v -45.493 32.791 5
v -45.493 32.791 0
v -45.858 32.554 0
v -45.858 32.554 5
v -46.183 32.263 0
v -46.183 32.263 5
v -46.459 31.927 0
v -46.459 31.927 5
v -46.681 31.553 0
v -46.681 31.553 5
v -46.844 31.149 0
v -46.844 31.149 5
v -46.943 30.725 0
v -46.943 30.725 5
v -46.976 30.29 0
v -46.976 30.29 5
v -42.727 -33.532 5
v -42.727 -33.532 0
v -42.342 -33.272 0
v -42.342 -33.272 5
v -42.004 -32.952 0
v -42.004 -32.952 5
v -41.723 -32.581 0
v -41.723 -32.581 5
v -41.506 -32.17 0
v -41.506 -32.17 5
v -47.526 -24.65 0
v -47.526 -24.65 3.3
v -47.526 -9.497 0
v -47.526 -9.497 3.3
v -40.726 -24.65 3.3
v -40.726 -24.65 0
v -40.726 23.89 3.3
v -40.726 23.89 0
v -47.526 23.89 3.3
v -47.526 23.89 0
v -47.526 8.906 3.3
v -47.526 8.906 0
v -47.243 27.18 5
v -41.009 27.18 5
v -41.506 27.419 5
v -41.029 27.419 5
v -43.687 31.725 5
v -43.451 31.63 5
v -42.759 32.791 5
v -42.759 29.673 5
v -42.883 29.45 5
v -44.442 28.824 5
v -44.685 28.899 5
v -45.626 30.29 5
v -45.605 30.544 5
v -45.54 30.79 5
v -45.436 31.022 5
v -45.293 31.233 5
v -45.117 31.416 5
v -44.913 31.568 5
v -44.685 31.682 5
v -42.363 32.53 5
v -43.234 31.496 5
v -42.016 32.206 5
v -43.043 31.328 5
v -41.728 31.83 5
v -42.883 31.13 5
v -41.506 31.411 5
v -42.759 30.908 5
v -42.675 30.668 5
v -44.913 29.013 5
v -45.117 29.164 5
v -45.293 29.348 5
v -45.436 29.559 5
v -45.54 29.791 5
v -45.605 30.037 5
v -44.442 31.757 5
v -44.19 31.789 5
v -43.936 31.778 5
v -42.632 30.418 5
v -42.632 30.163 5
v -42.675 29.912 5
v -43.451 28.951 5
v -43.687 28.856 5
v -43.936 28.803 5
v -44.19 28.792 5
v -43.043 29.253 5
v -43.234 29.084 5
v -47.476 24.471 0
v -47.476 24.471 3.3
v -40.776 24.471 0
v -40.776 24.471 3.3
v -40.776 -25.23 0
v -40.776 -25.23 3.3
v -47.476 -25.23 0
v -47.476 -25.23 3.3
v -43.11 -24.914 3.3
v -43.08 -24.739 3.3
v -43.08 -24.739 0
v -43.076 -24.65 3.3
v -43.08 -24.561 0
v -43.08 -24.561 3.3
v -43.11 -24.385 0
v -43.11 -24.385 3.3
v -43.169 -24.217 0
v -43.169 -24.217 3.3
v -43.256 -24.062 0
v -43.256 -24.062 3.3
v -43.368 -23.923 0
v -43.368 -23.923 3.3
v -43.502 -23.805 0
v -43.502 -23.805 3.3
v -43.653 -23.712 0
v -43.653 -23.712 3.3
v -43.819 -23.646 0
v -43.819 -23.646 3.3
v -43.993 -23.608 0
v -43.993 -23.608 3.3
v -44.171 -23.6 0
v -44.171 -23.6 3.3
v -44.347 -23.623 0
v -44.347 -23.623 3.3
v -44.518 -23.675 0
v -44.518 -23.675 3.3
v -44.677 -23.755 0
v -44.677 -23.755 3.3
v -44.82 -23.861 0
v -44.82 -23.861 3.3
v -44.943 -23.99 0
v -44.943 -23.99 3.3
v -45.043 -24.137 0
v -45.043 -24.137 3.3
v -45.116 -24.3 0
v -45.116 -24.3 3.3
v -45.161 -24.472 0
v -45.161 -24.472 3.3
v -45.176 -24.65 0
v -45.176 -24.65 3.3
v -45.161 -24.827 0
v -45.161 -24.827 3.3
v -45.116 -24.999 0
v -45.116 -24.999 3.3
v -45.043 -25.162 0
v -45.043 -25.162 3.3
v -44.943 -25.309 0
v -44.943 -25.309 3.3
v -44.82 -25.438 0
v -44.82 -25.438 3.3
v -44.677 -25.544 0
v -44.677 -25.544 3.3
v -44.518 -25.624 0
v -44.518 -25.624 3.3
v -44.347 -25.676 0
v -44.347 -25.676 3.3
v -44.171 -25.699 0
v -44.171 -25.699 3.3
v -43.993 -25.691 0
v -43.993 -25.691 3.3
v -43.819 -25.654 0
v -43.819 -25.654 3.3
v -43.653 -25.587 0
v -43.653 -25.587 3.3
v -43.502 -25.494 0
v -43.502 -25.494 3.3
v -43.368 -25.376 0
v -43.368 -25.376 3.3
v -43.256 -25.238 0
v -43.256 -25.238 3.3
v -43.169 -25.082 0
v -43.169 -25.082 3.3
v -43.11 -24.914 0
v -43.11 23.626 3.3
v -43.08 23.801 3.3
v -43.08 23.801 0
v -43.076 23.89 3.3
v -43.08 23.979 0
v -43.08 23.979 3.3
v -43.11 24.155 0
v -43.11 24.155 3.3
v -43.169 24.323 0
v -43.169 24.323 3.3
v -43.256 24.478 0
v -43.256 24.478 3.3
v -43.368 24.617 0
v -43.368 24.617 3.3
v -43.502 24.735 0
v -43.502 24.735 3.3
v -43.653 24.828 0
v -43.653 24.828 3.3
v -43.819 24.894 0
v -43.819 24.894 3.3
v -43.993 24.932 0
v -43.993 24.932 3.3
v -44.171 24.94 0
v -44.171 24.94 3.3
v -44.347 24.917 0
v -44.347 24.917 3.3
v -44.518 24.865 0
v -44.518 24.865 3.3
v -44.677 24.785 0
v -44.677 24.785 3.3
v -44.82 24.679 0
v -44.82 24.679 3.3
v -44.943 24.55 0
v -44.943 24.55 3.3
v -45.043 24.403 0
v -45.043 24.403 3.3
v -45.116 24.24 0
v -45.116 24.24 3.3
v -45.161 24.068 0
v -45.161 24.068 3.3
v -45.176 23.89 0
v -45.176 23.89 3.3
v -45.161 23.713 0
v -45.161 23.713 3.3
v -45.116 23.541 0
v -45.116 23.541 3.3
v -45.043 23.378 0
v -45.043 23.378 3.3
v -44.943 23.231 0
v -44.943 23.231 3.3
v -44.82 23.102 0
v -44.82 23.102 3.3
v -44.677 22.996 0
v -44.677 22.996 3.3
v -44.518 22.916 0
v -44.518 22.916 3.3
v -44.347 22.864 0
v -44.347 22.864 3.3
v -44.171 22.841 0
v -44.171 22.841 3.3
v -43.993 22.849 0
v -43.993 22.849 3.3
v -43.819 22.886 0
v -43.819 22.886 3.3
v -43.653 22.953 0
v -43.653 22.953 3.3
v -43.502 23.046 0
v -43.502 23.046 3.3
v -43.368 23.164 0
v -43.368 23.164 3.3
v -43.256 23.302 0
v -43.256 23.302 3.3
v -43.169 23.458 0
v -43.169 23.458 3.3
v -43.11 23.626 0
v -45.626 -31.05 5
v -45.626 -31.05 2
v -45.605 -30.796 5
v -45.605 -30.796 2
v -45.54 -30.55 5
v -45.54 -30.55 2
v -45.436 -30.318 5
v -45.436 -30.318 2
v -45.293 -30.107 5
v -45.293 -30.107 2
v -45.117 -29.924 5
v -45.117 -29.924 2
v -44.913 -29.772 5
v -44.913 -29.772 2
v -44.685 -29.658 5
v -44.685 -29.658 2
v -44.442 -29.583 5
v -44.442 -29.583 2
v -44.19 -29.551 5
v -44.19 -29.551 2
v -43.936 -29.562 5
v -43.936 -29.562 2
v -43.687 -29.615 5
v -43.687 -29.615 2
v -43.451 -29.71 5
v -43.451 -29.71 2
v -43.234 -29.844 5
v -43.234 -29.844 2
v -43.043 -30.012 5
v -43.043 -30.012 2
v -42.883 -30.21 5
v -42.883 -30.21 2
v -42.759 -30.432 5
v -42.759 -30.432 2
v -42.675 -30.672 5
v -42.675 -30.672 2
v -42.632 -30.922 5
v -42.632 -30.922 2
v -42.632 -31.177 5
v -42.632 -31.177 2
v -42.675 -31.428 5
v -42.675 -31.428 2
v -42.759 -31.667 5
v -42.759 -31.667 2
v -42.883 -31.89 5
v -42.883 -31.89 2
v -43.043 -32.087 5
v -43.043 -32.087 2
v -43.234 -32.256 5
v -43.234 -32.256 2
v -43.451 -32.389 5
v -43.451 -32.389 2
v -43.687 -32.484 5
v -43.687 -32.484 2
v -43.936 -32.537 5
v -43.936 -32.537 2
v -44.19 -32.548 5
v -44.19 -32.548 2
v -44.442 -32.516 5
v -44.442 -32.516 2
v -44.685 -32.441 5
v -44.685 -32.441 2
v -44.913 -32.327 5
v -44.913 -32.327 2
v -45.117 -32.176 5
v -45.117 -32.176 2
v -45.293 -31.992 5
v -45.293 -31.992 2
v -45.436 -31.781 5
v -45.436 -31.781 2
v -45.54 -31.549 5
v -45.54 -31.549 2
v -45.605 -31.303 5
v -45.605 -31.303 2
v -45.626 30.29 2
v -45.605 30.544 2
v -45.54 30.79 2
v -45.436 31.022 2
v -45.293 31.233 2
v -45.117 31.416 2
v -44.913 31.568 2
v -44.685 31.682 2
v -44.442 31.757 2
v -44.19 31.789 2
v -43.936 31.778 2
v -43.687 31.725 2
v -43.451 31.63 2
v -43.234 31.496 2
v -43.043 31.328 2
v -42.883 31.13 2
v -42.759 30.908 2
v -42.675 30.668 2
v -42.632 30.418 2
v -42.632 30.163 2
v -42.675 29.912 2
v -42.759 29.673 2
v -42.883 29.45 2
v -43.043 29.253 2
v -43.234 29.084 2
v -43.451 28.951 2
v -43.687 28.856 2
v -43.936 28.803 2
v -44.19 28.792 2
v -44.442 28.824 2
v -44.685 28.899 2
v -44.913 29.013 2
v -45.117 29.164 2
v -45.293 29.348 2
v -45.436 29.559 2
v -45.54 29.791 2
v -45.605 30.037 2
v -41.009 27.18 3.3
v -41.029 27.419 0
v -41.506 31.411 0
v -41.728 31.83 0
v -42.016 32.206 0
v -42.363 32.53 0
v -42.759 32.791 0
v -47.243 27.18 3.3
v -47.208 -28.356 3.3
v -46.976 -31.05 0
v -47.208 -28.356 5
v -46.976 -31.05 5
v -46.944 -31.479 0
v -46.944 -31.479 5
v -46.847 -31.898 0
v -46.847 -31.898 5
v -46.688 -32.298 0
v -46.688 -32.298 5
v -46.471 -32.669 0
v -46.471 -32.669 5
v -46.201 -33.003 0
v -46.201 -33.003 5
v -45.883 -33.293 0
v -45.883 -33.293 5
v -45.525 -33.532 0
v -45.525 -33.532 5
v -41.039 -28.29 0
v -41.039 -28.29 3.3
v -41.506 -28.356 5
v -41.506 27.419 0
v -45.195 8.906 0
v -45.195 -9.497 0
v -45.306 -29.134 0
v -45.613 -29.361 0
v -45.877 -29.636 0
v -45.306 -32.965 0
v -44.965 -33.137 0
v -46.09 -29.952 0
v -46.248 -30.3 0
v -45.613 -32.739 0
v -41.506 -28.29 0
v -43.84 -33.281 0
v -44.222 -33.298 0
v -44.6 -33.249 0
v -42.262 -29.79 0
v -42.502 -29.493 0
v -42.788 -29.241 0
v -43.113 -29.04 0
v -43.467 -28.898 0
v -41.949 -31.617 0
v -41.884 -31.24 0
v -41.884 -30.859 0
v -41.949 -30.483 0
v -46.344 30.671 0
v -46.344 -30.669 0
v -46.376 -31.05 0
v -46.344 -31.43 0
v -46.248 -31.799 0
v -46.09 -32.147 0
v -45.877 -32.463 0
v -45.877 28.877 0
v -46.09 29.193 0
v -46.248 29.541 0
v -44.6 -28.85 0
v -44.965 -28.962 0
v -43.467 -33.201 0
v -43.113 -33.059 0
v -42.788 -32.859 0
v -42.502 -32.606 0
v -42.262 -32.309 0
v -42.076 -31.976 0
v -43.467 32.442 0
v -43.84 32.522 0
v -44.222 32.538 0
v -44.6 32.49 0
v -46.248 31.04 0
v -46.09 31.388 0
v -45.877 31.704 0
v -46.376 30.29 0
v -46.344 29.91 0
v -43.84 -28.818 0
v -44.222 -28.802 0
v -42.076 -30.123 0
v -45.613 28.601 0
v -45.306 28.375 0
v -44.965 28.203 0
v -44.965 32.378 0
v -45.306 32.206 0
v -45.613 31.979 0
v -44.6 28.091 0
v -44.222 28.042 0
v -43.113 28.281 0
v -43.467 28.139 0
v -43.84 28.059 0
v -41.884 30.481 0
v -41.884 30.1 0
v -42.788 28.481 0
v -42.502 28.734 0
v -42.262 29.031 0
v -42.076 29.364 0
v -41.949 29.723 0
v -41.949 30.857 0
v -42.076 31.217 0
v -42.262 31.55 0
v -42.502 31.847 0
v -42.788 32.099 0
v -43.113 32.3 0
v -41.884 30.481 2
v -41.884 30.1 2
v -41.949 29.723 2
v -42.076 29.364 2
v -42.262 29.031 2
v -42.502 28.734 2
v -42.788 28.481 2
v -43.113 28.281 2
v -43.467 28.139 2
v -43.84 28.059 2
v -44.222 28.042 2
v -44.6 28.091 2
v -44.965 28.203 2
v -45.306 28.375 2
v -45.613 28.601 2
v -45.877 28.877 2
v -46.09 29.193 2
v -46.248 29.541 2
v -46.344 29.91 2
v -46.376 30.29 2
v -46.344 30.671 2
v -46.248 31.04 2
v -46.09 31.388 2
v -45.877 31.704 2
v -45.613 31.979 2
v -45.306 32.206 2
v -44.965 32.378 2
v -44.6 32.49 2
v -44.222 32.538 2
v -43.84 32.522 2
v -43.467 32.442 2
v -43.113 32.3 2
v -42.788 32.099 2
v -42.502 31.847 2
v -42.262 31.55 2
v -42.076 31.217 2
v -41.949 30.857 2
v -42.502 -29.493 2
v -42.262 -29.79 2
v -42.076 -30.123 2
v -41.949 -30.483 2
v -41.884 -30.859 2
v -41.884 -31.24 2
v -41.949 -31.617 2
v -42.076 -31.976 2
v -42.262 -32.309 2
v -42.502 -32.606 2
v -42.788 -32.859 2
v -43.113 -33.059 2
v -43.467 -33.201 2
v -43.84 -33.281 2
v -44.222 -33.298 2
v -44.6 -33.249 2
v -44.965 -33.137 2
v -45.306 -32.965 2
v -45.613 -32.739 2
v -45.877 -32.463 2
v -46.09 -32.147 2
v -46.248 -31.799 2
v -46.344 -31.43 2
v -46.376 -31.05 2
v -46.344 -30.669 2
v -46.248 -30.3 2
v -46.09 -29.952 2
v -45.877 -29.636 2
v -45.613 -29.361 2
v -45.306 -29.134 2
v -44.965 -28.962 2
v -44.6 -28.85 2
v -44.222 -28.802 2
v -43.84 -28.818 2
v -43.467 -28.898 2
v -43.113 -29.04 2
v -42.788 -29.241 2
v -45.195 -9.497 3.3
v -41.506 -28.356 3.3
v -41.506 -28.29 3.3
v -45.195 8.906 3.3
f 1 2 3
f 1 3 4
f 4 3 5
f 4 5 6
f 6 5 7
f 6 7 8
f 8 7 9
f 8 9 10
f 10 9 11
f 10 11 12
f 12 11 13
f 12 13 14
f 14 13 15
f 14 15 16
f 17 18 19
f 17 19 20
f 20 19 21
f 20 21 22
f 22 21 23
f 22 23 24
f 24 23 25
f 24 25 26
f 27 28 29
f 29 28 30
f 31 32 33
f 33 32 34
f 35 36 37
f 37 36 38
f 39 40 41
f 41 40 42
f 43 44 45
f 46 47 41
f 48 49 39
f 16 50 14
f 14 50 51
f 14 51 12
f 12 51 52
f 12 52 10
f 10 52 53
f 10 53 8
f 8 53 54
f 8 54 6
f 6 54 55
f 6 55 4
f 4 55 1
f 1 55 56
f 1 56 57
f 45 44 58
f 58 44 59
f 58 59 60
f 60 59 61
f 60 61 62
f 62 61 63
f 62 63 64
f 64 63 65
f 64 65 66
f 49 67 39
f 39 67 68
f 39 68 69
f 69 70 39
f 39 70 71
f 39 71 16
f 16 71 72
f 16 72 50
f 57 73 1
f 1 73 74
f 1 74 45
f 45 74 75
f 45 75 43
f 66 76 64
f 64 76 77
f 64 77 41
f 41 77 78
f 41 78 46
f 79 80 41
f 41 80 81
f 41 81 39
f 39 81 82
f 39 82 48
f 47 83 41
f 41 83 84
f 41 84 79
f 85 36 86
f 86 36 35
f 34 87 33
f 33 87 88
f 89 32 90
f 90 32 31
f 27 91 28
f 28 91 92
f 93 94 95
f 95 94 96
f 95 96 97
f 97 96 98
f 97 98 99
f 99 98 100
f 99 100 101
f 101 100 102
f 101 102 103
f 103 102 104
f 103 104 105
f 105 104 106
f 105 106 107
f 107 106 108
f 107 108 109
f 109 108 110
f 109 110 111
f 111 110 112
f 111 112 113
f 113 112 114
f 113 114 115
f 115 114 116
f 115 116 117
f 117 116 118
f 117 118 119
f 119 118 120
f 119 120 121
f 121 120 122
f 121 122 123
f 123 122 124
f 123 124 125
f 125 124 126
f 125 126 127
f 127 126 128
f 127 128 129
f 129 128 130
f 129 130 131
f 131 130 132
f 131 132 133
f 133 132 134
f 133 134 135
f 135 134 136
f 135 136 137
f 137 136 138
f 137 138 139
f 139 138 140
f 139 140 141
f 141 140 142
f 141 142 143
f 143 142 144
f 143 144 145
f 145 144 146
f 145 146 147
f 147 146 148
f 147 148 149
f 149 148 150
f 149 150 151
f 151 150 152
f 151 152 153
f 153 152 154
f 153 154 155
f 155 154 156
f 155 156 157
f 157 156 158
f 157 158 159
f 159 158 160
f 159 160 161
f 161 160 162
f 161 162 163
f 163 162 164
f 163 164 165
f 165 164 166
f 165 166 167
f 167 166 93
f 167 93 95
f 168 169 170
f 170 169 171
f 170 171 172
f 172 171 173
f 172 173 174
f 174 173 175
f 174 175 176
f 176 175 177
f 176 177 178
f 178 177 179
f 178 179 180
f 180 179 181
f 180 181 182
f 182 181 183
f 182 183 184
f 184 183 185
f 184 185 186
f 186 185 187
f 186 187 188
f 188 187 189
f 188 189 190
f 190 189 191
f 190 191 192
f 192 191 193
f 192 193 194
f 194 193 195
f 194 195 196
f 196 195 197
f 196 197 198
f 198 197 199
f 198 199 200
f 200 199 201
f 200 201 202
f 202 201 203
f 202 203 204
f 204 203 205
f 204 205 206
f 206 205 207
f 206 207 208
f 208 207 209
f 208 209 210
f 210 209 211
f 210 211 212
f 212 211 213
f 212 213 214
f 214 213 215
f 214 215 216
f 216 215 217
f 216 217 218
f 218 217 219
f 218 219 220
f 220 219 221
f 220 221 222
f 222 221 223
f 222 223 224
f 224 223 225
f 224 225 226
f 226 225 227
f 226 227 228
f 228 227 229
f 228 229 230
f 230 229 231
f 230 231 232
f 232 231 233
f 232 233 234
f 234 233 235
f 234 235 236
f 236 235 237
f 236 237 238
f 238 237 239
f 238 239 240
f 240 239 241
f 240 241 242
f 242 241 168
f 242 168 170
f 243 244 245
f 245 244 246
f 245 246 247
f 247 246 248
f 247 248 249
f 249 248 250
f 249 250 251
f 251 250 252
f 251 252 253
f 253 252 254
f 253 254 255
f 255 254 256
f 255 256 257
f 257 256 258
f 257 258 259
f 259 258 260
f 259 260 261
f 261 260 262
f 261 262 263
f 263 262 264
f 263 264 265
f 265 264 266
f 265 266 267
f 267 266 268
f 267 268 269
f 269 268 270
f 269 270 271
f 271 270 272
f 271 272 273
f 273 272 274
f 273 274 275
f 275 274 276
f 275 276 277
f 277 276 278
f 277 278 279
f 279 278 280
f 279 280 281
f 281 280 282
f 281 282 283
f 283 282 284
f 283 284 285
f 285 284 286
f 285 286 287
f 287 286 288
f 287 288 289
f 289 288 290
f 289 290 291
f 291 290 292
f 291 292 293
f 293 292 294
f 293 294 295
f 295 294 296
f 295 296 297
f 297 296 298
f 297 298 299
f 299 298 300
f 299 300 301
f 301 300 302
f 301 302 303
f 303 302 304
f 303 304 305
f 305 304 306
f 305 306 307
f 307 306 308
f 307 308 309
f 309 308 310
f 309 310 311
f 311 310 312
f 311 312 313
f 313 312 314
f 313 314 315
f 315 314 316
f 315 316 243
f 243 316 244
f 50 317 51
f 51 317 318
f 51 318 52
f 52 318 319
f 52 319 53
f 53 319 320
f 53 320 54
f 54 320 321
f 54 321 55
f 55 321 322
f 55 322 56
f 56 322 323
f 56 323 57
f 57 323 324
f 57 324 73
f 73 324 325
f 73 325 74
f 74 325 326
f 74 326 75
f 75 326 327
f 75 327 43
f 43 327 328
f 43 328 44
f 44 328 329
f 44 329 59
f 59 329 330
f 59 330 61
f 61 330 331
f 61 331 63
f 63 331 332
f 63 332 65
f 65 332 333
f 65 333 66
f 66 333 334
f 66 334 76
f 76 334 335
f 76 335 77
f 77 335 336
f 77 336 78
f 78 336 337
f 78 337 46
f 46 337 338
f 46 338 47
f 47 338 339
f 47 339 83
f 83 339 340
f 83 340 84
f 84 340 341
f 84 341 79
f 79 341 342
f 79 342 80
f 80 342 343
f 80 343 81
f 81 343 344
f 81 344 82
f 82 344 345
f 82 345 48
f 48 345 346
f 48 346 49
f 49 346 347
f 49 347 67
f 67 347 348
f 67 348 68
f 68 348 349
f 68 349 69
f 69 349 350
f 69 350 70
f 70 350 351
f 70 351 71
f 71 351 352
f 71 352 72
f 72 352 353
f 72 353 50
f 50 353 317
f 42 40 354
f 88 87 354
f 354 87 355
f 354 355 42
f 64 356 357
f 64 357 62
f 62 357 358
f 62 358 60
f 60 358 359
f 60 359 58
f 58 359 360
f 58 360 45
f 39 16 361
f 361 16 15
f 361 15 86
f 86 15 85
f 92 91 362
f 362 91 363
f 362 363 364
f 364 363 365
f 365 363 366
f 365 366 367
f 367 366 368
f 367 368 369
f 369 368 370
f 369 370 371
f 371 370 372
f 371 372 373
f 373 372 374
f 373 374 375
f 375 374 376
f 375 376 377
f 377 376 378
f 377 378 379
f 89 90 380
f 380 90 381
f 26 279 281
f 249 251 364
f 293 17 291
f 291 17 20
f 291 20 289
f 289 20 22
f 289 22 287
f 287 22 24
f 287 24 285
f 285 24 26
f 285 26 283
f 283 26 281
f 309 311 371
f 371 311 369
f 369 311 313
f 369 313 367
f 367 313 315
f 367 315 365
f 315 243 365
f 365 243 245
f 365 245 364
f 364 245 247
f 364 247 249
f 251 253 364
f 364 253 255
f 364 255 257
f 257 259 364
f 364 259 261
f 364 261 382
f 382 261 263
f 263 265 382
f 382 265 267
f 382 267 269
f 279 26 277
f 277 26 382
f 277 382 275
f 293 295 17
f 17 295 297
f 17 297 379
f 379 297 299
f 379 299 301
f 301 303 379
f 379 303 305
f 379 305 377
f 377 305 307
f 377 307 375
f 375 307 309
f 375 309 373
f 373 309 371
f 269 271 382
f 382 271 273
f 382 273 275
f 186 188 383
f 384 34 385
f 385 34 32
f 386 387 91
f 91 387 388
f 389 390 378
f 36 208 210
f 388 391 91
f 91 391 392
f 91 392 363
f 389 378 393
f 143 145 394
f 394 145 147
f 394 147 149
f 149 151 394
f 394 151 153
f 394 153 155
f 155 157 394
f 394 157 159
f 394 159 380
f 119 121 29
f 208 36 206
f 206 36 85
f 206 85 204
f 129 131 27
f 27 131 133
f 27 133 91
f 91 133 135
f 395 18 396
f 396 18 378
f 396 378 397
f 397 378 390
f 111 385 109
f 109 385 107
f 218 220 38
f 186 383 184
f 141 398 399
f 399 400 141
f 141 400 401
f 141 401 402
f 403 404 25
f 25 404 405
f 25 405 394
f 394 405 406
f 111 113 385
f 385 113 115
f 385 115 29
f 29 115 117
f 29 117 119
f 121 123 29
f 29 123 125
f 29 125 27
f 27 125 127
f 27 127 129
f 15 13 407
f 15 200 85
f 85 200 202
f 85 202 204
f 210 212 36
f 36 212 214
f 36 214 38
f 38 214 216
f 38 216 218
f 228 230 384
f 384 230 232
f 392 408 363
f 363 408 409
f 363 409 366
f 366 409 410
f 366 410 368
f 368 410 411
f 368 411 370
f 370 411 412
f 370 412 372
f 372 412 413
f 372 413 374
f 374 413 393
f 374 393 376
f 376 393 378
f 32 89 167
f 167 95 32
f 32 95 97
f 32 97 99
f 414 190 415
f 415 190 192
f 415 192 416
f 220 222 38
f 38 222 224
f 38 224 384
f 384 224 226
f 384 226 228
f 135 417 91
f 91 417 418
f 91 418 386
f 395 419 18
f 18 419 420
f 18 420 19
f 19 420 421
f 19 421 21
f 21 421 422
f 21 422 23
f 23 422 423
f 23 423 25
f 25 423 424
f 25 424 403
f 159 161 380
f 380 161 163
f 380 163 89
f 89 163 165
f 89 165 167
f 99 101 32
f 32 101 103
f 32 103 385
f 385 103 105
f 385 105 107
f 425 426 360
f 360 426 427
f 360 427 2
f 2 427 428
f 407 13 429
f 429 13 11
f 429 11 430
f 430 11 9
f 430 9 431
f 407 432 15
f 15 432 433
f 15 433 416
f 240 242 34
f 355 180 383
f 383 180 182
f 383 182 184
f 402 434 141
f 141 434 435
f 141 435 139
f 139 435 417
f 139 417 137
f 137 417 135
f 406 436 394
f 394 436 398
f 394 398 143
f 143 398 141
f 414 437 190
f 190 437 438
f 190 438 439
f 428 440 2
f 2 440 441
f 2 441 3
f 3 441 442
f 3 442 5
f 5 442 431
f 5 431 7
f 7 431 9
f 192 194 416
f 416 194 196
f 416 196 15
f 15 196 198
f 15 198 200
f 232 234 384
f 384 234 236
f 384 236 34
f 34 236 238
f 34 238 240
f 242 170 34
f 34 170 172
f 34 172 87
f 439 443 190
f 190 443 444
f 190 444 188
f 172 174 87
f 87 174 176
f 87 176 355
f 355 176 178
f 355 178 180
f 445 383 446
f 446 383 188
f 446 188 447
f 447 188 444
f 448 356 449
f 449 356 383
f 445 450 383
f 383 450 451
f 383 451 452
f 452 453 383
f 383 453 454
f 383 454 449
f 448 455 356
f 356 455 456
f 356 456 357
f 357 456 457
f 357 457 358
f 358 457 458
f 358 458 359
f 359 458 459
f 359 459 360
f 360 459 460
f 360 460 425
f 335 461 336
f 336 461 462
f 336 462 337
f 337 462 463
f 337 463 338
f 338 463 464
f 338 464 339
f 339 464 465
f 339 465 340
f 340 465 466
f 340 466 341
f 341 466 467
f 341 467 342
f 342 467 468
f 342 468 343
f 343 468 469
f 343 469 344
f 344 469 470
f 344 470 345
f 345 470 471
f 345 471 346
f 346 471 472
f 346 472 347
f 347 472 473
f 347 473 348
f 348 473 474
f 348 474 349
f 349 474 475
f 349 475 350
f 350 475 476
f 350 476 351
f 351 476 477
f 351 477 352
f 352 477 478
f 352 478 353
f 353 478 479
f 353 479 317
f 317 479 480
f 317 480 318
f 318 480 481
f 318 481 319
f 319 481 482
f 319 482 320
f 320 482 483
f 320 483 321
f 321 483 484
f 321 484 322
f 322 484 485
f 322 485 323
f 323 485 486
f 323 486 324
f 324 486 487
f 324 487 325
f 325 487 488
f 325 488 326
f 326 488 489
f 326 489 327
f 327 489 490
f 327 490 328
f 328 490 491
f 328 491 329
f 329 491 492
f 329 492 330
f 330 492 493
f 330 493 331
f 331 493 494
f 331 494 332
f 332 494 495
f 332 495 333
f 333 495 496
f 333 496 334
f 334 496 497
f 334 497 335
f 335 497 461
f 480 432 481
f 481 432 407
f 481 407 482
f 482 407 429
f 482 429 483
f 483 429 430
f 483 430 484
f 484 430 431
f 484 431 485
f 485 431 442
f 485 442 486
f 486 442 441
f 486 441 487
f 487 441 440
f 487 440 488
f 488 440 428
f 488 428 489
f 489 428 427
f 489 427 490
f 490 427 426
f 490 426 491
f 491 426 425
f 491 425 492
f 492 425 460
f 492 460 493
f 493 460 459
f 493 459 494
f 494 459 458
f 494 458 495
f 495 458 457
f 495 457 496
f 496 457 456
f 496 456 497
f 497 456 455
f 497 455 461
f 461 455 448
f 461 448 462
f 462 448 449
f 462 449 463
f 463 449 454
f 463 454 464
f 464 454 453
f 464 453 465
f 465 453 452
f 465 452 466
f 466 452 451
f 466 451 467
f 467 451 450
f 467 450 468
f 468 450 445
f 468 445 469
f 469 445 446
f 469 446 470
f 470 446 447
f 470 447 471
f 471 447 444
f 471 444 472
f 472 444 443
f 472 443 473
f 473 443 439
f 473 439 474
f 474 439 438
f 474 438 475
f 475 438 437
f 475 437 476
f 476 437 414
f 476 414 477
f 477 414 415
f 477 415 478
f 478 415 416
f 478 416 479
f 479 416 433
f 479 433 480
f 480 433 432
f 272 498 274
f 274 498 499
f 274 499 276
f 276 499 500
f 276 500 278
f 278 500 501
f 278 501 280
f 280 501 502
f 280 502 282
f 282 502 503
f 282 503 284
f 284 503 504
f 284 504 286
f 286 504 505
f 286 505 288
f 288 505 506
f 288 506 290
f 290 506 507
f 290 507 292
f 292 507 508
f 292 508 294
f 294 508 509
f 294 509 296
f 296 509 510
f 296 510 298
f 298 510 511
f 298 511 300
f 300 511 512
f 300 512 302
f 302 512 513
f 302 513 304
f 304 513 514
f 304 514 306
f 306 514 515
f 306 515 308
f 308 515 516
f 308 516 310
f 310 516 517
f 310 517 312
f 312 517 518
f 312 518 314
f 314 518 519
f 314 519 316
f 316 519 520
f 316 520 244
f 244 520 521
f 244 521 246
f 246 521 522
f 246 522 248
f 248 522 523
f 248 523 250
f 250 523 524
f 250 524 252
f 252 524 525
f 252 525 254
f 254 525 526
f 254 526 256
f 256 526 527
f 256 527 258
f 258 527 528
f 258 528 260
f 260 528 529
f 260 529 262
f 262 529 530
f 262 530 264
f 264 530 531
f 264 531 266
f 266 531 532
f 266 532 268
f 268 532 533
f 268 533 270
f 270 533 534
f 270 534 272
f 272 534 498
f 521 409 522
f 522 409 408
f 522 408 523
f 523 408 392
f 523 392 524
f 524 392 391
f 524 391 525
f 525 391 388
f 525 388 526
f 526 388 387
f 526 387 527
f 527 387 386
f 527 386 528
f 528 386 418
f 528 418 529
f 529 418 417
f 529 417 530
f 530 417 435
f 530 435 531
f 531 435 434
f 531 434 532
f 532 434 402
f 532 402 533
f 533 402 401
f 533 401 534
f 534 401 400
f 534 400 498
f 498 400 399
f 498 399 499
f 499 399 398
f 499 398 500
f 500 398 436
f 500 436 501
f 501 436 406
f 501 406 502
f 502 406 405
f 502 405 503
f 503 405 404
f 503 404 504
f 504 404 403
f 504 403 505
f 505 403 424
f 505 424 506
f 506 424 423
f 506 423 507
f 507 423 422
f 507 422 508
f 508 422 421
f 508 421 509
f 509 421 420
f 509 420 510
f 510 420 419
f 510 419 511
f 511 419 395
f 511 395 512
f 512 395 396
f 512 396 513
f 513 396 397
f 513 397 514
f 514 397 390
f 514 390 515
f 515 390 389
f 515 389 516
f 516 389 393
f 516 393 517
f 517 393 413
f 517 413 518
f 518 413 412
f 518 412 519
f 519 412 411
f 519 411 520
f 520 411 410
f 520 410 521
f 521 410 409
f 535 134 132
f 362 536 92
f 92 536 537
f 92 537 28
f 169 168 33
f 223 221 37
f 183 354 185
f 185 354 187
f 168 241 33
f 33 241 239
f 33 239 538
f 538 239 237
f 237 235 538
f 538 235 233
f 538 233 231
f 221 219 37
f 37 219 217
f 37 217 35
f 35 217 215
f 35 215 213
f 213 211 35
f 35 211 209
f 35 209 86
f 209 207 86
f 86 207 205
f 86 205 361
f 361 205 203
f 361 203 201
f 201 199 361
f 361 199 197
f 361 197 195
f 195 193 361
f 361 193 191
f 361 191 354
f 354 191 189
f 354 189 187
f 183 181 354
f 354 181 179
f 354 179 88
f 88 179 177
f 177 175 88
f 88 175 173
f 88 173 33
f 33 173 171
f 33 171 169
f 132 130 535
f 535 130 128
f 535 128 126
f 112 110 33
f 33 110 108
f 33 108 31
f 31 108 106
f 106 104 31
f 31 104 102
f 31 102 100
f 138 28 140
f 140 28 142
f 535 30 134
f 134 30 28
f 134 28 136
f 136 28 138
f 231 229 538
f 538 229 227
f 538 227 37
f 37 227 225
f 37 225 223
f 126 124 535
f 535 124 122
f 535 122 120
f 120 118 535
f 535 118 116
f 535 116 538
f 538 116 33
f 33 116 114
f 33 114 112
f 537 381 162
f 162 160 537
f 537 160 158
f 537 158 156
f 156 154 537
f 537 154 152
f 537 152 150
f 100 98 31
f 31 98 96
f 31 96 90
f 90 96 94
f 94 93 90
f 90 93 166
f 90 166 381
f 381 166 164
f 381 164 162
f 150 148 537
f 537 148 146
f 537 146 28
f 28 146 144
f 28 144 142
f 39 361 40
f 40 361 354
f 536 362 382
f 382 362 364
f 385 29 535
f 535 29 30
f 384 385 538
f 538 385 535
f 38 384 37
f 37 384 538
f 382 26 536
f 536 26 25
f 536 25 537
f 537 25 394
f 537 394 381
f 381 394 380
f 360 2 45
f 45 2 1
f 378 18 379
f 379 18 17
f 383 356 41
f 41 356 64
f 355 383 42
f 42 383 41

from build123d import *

# Parameters (mm, degrees)
SKIZZE5_R                       = 2.85
AUFSATZ_LINEAR_AUSTRAGEN2_DEPTH = 5
SKIZZE7_R                       = 1.5
SKIZZE7_R_2                     = 2.5
SCHNITT_LINEAR_AUSTRAGEN1_DEPTH = 5
SKIZZE10_R                      = 3.4
AUFSATZ_LINEAR_AUSTRAGEN4_DEPTH = 5
SKIZZE11_R                      = 1.05
SCHNITT_LINEAR_AUSTRAGEN3_DEPTH = 5
SKIZZE15_R                      = 2.25
SCHNITT_LINEAR_AUSTRAGEN7_DEPTH = 2
SKIZZE16_W                      = 8.368883353
SKIZZE16_H                      = 55.536319394
SCHNITT_LINEAR_AUSTRAGEN8_DEPTH = 1.7
SKIZZE17_W                      = 2.331134025
SKIZZE17_H                      = 18.40252581
SKIZZE17_W_2                    = 6.80460091
SKIZZE17_H_2                    = 1.708942227
SKIZZE17_W_3                    = 9.007409032
SKIZZE17_H_3                    = 2.575965086
SKIZZE17_W_4                    = 1.92022312
SKIZZE17_H_4                    = 5.063487197
SKIZZE17_H_5                    = 4.286912164
SCHNITT_LINEAR_AUSTRAGEN9_DEPTH = 11.7


with BuildPart() as part:
    # Skizze5 → Aufsatz-Linear austragen2 (new body)
    with BuildSketch(Plane.XY):
        with BuildLine():
            Line((-40.726132402, -24.649552882), (-40.726132402, 23.890447118))
            ThreePointArc((-40.726132402, 23.890447118), (-44.126132402, 20.490447118), (-47.526132402, 23.890447118))
            Line((-47.526132402, 23.890447118), (-47.526132402, -24.649552882))
            ThreePointArc((-47.526132402, -24.649552882), (-44.126132402, -21.249552882), (-40.726132402, -24.649552882))
        make_face()
        with BuildLine():
            Line((-40.726132402, 23.890447118), (-40.775983963, 24.470537999))
            ThreePointArc((-40.775983963, 24.470537999), (-44.126132402, 27.290447118), (-47.476280842, 24.470537999))
            Line((-47.476280842, 24.470537999), (-47.526132402, 23.890447118))
            ThreePointArc((-47.526132402, 23.890447118), (-44.126132402, 20.490447118), (-40.726132402, 23.890447118))
        make_face()
        with Locations((-44.126132402, 30.290447118)):
            Circle(SKIZZE5_R)
        with BuildLine():
            Line((-40.775983963, 24.470537999), (-41.276132402, 30.290447118))
            ThreePointArc((-41.276132402, 30.290447118), (-44.126132402, 27.440447118), (-46.976132402, 30.290447118))
            Line((-46.976132402, 30.290447118), (-47.476280842, 24.470537999))
            ThreePointArc((-47.476280842, 24.470537999), (-44.126132402, 27.290447118), (-40.775983963, 24.470537999))
        make_face()
        with BuildLine():
            Line((-40.775983963, -25.229643764), (-40.726132402, -24.649552882))
            ThreePointArc((-40.726132402, -24.649552882), (-44.126132402, -21.249552882), (-47.526132402, -24.649552882))
            Line((-47.526132402, -24.649552882), (-47.476280842, -25.229643764))
            ThreePointArc((-47.476280842, -25.229643764), (-44.126132402, -28.049552882), (-40.775983963, -25.229643764))
        make_face()
        with BuildLine():
            Line((-41.276132402, -31.049552882), (-40.775983963, -25.229643764))
            ThreePointArc((-40.775983963, -25.229643764), (-44.126132402, -28.049552882), (-47.476280842, -25.229643764))
            Line((-47.476280842, -25.229643764), (-46.976132402, -31.049552882))
            ThreePointArc((-46.976132402, -31.049552882), (-44.126132402, -28.199552882), (-41.276132402, -31.049552882))
        make_face()
        with Locations((-44.126132402, -31.049552882)):
            Circle(SKIZZE5_R)
    extrude(amount=AUFSATZ_LINEAR_AUSTRAGEN2_DEPTH)

    # Skizze7 → Schnitt-Linear austragen1 (cut)
    with BuildSketch(Plane(origin=(0, 0, 0), x_dir=(-1, 0, 0), z_dir=(0, 0, -1))):
        with Locations((44.126132402, 30.290447118)):
            Circle(SKIZZE7_R)
        with Locations((44.126132402, 23.890447118)):
            Circle(SKIZZE7_R_2)
        with Locations((44.126132402, -24.649552882)):
            Circle(SKIZZE7_R_2)
        with Locations((44.126132402, -31.049552882)):
            Circle(SKIZZE7_R)
    extrude(amount=-SCHNITT_LINEAR_AUSTRAGEN1_DEPTH, mode=Mode.SUBTRACT)

    # Skizze10 → Aufsatz-Linear austragen4 (add)
    with BuildSketch(Plane(origin=(0, 0, 0), x_dir=(-1, 0, 0), z_dir=(0, 0, -1))):
        with Locations((44.126132402, 23.890447118)):
            Circle(SKIZZE10_R)
        with Locations((44.126132402, -24.649552882)):
            Circle(SKIZZE10_R)
    extrude(amount=-AUFSATZ_LINEAR_AUSTRAGEN4_DEPTH)

    # Skizze11 → Schnitt-Linear austragen3 (cut)
    with BuildSketch(Plane(origin=(0, 0, 0), x_dir=(-1, 0, 0), z_dir=(0, 0, -1))):
        with Locations((44.126132402, -24.649552882)):
            Circle(SKIZZE11_R)
        with Locations((44.126132402, 23.890447118)):
            Circle(SKIZZE11_R)
    extrude(amount=-SCHNITT_LINEAR_AUSTRAGEN3_DEPTH, mode=Mode.SUBTRACT)

    # Skizze15 → Schnitt-Linear austragen7 (cut)
    with BuildSketch(Plane(origin=(0, 0, 0), x_dir=(-1, 0, 0), z_dir=(0, 0, -1))):
        with Locations((44.126132402, 30.290447118)):
            Circle(SKIZZE15_R)
        with Locations((44.126132402, -31.049552882)):
            Circle(SKIZZE15_R)
    extrude(amount=-SCHNITT_LINEAR_AUSTRAGEN7_DEPTH, mode=Mode.SUBTRACT)

    # Skizze16 → Schnitt-Linear austragen8 (cut)
    with BuildSketch(Plane.XY.offset(5)):
        with Locations((-44.250355177, -0.588324363)):
            Rectangle(SKIZZE16_W, SKIZZE16_H)
    extrude(amount=-SCHNITT_LINEAR_AUSTRAGEN8_DEPTH, mode=Mode.SUBTRACT)

    # Skizze17 → Schnitt-Linear austragen9 (cut)
    with BuildSketch(Plane(origin=(0, 0, 0), x_dir=(-1, 0, 0), z_dir=(0, 0, -1))):
        with Locations((46.36056539, -0.295648179)):
            Rectangle(SKIZZE17_W, SKIZZE17_H)
        with Locations((44.482182567, 33.645654459)):
            Rectangle(SKIZZE17_W_2, SKIZZE17_H_2)
        with Locations((44.254699543, -34.820369049)):
            Rectangle(SKIZZE17_W_3, SKIZZE17_H_3)
        with Locations((40.545518977, 29.95066177)):
            Rectangle(SKIZZE17_W_4, SKIZZE17_H_4)
        with Locations((40.545518977, -30.43359055)):
            Rectangle(SKIZZE17_W_4, SKIZZE17_H_5)
    extrude(amount=-SCHNITT_LINEAR_AUSTRAGEN9_DEPTH, mode=Mode.SUBTRACT)


solid = part.part
